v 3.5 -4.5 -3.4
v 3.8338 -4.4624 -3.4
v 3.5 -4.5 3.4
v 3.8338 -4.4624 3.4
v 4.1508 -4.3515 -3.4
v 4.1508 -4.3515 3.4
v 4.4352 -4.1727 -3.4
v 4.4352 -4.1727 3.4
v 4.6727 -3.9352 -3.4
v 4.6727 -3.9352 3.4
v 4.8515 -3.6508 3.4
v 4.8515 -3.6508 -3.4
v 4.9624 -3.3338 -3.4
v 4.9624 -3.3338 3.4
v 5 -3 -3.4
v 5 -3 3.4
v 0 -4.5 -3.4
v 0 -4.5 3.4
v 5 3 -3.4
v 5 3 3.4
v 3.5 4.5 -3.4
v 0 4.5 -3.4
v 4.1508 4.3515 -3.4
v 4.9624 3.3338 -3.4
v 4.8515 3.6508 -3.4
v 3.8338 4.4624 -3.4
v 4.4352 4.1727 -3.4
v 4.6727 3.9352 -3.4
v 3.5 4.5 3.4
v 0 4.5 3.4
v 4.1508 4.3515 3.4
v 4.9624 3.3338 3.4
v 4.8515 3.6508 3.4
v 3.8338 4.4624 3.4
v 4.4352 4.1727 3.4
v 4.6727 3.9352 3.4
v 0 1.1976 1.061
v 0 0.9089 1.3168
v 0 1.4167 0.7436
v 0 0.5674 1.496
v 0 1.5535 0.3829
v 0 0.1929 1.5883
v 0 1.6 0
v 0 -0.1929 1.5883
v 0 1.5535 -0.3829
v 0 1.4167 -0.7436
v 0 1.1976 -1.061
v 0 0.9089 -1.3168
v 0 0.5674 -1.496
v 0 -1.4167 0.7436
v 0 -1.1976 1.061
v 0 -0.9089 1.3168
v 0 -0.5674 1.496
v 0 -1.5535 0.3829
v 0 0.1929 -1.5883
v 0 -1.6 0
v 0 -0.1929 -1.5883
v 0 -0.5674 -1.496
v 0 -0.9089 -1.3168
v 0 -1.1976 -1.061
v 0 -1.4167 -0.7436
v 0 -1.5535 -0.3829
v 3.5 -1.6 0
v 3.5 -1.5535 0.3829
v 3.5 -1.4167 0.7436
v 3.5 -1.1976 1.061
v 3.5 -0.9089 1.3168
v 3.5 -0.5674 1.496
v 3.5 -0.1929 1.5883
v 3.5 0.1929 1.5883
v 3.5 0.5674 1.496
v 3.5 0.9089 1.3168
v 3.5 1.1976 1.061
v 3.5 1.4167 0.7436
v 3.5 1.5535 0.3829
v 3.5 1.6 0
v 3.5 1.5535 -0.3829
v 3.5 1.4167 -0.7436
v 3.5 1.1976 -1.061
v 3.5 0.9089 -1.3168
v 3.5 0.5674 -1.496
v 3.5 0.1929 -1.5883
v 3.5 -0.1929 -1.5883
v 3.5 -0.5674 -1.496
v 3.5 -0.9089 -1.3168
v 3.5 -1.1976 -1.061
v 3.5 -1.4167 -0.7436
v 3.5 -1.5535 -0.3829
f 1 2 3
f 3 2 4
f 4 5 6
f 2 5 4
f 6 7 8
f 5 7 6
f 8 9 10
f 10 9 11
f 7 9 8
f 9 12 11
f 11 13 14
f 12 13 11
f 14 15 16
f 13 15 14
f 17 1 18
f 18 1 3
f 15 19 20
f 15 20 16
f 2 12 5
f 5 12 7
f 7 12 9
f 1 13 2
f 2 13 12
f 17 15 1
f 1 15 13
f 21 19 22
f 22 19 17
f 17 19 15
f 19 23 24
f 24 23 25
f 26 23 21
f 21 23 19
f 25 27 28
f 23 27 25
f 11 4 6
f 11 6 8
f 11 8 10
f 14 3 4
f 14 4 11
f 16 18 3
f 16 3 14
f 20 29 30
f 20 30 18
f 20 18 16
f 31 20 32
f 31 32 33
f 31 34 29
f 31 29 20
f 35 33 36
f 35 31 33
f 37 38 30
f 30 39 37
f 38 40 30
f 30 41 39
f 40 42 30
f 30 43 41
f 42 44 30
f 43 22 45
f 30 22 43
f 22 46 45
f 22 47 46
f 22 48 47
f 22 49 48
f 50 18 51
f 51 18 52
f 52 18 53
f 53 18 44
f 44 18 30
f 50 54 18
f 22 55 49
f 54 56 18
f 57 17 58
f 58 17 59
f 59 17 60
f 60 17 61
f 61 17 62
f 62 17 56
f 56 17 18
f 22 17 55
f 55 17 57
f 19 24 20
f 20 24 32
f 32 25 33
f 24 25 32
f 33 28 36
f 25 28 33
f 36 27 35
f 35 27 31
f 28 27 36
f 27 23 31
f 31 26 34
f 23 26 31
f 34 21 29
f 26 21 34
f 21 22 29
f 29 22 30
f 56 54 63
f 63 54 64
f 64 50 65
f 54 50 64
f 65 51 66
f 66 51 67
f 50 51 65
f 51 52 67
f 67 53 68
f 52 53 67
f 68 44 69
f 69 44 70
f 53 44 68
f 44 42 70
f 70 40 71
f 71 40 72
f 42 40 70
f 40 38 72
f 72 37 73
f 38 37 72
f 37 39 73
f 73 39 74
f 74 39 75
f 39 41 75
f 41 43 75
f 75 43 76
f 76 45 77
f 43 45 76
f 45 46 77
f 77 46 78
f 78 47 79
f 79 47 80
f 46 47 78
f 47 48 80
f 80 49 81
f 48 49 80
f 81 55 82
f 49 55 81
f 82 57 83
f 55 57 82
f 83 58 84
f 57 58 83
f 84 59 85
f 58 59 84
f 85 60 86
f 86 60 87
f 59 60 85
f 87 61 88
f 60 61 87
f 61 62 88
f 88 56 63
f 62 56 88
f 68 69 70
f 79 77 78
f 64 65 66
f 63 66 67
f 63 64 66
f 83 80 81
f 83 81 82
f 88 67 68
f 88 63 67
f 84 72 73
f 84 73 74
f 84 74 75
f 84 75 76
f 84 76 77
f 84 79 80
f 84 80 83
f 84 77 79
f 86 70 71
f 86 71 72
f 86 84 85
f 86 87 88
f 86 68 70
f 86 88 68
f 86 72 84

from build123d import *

# Parameters (mm, degrees)
PAD_DEPTH    = 3.4
SKETCH001_R  = 1.6
POCKET_DEPTH = 3.5


with BuildPart() as part:
    # Sketch → Pad (new body, symmetric)
    with BuildSketch(Plane.XY):
        with BuildLine():
            ThreePointArc((3.5, -4.5), (4.56066, -4.06066), (5, -3))
            Line((5, 3), (5, -3))
            ThreePointArc((5, 3), (4.56066, 4.06066), (3.5, 4.5))
            Line((3.5, 4.5), (0, 4.5))
            Line((0, 4.5), (0, -4.5))
            Line((0, -4.5), (3.5, -4.5))
        make_face()
    extrude(amount=PAD_DEPTH, both=True)

    # Sketch001 (on Face5 of Pad) → Pocket (cut)
    with BuildSketch(Plane(origin=(0, 0, 0), x_dir=(0, -1, 0), z_dir=(-1, 0, 0))):
        Circle(SKETCH001_R)
    extrude(amount=-POCKET_DEPTH, mode=Mode.SUBTRACT)


solid = part.part
